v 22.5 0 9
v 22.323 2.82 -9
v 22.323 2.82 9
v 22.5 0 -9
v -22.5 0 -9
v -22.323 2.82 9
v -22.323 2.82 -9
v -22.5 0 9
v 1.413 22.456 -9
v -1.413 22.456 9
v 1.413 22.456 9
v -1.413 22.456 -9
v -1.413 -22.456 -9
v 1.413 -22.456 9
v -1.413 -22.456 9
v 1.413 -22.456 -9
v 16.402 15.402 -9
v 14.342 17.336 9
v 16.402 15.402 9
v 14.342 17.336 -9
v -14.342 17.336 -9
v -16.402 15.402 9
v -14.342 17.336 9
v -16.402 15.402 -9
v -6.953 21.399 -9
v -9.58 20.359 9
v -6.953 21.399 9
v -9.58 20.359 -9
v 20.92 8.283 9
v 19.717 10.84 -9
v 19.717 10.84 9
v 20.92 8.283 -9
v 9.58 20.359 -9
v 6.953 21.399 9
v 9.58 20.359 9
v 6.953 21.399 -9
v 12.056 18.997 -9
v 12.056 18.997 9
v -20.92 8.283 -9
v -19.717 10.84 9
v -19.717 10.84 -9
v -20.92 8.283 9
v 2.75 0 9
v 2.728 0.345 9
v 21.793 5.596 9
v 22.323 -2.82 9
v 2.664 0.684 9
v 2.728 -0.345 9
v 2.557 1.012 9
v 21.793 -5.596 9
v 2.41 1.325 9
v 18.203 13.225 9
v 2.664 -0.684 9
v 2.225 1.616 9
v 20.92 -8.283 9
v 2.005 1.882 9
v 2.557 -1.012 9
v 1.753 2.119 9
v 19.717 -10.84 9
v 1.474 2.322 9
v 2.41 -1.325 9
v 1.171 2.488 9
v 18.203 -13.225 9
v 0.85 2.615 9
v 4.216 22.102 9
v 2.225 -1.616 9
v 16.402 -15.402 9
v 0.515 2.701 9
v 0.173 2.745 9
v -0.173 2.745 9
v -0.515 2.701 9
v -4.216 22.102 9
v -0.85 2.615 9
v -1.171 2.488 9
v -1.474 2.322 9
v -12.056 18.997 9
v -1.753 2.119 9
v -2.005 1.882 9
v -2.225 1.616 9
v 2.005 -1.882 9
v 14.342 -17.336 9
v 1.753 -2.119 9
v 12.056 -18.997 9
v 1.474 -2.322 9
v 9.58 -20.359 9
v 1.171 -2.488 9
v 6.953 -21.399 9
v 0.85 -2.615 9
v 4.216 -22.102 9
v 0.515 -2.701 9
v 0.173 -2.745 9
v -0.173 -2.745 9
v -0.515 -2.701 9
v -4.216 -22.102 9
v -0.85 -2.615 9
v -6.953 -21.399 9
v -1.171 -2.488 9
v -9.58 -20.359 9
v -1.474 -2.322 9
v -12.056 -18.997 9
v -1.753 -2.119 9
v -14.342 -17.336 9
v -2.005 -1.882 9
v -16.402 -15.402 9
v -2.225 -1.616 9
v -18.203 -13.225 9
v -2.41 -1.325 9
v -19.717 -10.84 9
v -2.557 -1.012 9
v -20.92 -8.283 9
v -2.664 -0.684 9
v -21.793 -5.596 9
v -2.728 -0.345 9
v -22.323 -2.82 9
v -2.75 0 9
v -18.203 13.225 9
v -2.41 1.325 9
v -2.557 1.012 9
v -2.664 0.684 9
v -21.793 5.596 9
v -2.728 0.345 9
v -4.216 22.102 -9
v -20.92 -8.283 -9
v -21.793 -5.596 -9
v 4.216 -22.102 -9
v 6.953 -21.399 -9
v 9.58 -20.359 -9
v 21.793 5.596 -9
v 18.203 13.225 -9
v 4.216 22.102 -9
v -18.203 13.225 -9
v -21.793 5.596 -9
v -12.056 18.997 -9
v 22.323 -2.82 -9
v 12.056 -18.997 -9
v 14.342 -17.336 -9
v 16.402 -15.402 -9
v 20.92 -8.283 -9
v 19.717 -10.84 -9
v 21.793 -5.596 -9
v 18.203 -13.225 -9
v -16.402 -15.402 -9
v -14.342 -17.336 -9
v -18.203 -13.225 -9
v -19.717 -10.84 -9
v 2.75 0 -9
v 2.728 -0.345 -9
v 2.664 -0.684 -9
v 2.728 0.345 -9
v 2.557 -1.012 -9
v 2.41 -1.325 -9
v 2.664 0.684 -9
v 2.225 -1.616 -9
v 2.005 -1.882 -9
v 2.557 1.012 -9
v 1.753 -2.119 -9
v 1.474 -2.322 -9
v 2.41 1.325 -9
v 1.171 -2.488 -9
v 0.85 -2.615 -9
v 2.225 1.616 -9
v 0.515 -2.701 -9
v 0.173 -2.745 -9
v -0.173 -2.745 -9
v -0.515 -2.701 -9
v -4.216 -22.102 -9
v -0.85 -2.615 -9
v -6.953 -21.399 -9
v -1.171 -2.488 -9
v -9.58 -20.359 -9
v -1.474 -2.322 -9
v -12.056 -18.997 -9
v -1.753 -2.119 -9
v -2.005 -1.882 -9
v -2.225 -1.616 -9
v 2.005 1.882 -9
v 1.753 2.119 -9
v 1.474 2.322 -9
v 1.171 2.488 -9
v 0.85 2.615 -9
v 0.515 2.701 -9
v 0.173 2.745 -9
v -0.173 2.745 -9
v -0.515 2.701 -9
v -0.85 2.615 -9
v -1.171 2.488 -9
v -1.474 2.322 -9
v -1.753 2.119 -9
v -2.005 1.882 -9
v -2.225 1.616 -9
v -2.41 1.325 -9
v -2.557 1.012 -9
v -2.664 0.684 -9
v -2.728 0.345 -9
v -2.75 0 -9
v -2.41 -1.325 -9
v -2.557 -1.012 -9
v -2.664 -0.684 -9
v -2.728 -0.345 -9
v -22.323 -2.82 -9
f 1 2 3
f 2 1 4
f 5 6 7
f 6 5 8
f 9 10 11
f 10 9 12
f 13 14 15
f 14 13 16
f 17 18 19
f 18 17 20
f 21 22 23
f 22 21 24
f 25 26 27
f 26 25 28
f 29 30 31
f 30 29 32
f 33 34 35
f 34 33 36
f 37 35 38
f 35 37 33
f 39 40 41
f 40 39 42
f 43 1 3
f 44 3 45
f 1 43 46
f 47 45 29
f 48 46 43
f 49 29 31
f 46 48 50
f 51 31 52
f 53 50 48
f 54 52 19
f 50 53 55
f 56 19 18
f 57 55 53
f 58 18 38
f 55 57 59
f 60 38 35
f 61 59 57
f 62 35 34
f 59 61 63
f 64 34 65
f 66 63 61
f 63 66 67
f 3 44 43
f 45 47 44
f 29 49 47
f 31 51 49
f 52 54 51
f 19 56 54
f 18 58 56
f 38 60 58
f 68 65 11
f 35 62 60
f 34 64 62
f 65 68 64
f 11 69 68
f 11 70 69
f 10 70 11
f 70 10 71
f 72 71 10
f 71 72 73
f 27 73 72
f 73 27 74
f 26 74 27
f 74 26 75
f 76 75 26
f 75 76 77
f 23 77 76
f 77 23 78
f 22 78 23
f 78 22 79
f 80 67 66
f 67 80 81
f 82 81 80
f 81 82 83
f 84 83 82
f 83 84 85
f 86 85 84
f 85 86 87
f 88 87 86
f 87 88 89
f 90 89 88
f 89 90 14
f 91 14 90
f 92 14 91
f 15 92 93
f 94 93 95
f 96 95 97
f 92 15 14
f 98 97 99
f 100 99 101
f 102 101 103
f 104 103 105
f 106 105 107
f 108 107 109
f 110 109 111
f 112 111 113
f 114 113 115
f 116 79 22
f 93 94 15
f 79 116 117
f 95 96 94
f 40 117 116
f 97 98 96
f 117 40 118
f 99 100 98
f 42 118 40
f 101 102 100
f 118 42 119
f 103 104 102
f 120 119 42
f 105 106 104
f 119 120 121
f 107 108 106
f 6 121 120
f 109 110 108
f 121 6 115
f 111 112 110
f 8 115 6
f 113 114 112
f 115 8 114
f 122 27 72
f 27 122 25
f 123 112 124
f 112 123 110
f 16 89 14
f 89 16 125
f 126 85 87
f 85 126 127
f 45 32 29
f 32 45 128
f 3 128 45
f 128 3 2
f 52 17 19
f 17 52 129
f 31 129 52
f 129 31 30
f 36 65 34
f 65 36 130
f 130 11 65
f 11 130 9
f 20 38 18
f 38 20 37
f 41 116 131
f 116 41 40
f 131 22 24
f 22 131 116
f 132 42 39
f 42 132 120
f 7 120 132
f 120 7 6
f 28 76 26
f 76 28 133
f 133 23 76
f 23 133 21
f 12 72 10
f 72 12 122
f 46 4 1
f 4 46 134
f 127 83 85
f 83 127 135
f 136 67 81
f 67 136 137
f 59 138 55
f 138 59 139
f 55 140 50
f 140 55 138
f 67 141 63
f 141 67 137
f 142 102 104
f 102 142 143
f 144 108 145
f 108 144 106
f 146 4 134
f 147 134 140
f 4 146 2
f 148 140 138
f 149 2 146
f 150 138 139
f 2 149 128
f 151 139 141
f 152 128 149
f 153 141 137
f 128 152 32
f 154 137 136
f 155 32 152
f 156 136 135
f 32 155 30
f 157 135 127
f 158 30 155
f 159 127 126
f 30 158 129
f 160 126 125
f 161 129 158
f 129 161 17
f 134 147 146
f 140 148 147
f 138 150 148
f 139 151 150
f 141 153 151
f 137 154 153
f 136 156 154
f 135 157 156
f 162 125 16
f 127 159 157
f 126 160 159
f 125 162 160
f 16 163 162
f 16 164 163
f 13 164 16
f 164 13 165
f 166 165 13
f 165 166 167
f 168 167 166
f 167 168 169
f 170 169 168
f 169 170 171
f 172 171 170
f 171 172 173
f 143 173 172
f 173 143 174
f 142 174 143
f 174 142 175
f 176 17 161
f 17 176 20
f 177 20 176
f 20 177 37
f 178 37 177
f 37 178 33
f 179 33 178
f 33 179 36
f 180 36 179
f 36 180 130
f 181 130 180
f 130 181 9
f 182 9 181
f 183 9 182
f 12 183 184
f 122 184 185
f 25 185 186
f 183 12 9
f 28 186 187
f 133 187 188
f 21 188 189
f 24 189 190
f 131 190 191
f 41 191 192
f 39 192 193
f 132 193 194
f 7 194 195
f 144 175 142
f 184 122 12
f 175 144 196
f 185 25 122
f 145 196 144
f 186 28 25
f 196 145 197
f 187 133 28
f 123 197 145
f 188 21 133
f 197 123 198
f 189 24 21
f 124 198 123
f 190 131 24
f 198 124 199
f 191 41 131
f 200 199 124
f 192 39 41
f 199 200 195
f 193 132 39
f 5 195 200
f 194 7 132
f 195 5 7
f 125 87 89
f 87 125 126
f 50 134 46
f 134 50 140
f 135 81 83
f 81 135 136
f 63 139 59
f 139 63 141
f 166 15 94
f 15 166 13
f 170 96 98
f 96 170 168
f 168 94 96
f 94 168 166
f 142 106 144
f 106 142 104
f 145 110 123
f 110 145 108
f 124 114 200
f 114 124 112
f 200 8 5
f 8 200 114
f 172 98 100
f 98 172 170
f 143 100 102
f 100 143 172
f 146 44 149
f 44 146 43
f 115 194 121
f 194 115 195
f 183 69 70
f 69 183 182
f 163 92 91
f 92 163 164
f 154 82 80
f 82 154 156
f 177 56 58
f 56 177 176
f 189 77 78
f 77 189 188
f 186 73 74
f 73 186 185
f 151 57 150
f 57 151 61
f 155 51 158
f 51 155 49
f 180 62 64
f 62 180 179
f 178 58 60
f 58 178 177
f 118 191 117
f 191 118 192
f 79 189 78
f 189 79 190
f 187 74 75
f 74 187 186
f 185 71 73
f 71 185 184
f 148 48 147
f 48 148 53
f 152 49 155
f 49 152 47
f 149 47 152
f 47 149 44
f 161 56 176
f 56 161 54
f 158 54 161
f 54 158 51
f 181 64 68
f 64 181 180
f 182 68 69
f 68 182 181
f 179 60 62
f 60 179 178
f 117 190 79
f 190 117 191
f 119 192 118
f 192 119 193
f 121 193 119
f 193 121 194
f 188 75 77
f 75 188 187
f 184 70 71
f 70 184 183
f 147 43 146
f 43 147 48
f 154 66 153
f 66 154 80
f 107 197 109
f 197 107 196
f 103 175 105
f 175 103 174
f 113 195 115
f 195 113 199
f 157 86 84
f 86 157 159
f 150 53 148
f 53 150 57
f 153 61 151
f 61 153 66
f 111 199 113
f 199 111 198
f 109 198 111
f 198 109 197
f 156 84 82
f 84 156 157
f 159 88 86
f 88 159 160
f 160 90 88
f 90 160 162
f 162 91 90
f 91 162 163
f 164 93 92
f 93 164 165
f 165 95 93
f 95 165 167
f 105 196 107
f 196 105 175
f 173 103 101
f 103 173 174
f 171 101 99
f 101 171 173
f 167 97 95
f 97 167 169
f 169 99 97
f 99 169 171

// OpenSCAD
$fn = 50;


difference() {
	union() {
		translate(v = [0, 0, -9.0000000000]) {
			cylinder(h = 18, r = 22.5000000000);
		}
	}
	union() {
		translate(v = [0, 0, -100.0000000000]) {
			cylinder(h = 200, r = 2.7500000000);
		}
	}
}
